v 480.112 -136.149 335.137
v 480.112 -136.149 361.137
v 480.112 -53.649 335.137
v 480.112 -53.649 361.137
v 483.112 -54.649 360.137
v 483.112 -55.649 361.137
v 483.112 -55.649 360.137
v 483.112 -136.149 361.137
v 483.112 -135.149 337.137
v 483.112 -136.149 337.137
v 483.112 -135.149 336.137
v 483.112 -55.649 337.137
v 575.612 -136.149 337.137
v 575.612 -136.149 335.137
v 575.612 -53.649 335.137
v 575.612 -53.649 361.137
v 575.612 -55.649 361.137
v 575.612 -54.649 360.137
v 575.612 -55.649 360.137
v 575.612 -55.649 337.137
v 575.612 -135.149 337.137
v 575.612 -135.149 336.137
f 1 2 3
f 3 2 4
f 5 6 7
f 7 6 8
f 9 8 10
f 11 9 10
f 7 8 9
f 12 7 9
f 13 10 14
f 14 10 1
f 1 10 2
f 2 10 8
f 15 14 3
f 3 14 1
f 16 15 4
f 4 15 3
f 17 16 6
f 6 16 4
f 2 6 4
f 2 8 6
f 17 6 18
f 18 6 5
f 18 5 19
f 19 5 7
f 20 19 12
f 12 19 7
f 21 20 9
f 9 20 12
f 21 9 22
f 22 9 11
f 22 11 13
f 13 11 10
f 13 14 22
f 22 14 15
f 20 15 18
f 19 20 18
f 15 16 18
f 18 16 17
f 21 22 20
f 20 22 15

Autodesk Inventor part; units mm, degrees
ref_plane "YZ Plane" through (0, 0, 0) normal (1, 0, 0) x (0, 1, 0)
ref_plane "XZ Plane" through (0, 0, 0) normal (0, 1, 0) x (-1, 0, 0)
ref_plane "XY Plane" through (0, 0, 0) normal (0, 0, 1) x (1, 0, 0)
ref_plane "Arbeitsebene1" through (575.6121, -61.149, 338.1375) normal (-1, 0, 0) x (0, -1, 0)
sketch "Skizze1" plane through (575.6121, -61.149, 338.1375) normal (-1, 0, 0) x (0, -1, 0)
  line L0 (74, -2) -> (75, -1)
  line L1 (74, 0) -> (74, -2)
  line L2 (75, -3) -> (-7.5, -3)
  line L3 (-7.5, -3) -> (-7.5, 23)
  line L4 (-4.5, 22) -> (-3.5, 23)
  line L5 (-6.5, 22) -> (-4.5, 22)
  line L6 (-5.5, 23) -> (-6.5, 22)
  line L7 (-5.5, 23) -> (-7.5, 23)
  line L8 (75, -3) -> (75, -1)
  line L9 (74, -1) -> (-5.5, -1)
  line L10 (-5.5, -1) -> (-5.5, 22)
  point P0 (-61.149, -338.1375)
extrude "Extrusion1" add sketch "Skizze1" along normal blind 92.5
sketch "Skizze3" plane through (483.1121, -61.149, 338.1375) normal (-1, 0, 0) x (0, 0, 1)
  line L0 (-3, 7.5) -> (23, 7.5) projected
  line L1 (-3, -75) -> (23, -75)
  line L2 (23, -75) -> (23, 7.5)
  line L3 (23, 7.5) -> (-3, 7.5)
  line L4 (-3, 7.5) -> (-3, -75)
  point P0 (-338.1375, 61.149)
extrude "Extrusion2" add sketch "Skizze3" along normal blind 3
properties part number "BatCap"
